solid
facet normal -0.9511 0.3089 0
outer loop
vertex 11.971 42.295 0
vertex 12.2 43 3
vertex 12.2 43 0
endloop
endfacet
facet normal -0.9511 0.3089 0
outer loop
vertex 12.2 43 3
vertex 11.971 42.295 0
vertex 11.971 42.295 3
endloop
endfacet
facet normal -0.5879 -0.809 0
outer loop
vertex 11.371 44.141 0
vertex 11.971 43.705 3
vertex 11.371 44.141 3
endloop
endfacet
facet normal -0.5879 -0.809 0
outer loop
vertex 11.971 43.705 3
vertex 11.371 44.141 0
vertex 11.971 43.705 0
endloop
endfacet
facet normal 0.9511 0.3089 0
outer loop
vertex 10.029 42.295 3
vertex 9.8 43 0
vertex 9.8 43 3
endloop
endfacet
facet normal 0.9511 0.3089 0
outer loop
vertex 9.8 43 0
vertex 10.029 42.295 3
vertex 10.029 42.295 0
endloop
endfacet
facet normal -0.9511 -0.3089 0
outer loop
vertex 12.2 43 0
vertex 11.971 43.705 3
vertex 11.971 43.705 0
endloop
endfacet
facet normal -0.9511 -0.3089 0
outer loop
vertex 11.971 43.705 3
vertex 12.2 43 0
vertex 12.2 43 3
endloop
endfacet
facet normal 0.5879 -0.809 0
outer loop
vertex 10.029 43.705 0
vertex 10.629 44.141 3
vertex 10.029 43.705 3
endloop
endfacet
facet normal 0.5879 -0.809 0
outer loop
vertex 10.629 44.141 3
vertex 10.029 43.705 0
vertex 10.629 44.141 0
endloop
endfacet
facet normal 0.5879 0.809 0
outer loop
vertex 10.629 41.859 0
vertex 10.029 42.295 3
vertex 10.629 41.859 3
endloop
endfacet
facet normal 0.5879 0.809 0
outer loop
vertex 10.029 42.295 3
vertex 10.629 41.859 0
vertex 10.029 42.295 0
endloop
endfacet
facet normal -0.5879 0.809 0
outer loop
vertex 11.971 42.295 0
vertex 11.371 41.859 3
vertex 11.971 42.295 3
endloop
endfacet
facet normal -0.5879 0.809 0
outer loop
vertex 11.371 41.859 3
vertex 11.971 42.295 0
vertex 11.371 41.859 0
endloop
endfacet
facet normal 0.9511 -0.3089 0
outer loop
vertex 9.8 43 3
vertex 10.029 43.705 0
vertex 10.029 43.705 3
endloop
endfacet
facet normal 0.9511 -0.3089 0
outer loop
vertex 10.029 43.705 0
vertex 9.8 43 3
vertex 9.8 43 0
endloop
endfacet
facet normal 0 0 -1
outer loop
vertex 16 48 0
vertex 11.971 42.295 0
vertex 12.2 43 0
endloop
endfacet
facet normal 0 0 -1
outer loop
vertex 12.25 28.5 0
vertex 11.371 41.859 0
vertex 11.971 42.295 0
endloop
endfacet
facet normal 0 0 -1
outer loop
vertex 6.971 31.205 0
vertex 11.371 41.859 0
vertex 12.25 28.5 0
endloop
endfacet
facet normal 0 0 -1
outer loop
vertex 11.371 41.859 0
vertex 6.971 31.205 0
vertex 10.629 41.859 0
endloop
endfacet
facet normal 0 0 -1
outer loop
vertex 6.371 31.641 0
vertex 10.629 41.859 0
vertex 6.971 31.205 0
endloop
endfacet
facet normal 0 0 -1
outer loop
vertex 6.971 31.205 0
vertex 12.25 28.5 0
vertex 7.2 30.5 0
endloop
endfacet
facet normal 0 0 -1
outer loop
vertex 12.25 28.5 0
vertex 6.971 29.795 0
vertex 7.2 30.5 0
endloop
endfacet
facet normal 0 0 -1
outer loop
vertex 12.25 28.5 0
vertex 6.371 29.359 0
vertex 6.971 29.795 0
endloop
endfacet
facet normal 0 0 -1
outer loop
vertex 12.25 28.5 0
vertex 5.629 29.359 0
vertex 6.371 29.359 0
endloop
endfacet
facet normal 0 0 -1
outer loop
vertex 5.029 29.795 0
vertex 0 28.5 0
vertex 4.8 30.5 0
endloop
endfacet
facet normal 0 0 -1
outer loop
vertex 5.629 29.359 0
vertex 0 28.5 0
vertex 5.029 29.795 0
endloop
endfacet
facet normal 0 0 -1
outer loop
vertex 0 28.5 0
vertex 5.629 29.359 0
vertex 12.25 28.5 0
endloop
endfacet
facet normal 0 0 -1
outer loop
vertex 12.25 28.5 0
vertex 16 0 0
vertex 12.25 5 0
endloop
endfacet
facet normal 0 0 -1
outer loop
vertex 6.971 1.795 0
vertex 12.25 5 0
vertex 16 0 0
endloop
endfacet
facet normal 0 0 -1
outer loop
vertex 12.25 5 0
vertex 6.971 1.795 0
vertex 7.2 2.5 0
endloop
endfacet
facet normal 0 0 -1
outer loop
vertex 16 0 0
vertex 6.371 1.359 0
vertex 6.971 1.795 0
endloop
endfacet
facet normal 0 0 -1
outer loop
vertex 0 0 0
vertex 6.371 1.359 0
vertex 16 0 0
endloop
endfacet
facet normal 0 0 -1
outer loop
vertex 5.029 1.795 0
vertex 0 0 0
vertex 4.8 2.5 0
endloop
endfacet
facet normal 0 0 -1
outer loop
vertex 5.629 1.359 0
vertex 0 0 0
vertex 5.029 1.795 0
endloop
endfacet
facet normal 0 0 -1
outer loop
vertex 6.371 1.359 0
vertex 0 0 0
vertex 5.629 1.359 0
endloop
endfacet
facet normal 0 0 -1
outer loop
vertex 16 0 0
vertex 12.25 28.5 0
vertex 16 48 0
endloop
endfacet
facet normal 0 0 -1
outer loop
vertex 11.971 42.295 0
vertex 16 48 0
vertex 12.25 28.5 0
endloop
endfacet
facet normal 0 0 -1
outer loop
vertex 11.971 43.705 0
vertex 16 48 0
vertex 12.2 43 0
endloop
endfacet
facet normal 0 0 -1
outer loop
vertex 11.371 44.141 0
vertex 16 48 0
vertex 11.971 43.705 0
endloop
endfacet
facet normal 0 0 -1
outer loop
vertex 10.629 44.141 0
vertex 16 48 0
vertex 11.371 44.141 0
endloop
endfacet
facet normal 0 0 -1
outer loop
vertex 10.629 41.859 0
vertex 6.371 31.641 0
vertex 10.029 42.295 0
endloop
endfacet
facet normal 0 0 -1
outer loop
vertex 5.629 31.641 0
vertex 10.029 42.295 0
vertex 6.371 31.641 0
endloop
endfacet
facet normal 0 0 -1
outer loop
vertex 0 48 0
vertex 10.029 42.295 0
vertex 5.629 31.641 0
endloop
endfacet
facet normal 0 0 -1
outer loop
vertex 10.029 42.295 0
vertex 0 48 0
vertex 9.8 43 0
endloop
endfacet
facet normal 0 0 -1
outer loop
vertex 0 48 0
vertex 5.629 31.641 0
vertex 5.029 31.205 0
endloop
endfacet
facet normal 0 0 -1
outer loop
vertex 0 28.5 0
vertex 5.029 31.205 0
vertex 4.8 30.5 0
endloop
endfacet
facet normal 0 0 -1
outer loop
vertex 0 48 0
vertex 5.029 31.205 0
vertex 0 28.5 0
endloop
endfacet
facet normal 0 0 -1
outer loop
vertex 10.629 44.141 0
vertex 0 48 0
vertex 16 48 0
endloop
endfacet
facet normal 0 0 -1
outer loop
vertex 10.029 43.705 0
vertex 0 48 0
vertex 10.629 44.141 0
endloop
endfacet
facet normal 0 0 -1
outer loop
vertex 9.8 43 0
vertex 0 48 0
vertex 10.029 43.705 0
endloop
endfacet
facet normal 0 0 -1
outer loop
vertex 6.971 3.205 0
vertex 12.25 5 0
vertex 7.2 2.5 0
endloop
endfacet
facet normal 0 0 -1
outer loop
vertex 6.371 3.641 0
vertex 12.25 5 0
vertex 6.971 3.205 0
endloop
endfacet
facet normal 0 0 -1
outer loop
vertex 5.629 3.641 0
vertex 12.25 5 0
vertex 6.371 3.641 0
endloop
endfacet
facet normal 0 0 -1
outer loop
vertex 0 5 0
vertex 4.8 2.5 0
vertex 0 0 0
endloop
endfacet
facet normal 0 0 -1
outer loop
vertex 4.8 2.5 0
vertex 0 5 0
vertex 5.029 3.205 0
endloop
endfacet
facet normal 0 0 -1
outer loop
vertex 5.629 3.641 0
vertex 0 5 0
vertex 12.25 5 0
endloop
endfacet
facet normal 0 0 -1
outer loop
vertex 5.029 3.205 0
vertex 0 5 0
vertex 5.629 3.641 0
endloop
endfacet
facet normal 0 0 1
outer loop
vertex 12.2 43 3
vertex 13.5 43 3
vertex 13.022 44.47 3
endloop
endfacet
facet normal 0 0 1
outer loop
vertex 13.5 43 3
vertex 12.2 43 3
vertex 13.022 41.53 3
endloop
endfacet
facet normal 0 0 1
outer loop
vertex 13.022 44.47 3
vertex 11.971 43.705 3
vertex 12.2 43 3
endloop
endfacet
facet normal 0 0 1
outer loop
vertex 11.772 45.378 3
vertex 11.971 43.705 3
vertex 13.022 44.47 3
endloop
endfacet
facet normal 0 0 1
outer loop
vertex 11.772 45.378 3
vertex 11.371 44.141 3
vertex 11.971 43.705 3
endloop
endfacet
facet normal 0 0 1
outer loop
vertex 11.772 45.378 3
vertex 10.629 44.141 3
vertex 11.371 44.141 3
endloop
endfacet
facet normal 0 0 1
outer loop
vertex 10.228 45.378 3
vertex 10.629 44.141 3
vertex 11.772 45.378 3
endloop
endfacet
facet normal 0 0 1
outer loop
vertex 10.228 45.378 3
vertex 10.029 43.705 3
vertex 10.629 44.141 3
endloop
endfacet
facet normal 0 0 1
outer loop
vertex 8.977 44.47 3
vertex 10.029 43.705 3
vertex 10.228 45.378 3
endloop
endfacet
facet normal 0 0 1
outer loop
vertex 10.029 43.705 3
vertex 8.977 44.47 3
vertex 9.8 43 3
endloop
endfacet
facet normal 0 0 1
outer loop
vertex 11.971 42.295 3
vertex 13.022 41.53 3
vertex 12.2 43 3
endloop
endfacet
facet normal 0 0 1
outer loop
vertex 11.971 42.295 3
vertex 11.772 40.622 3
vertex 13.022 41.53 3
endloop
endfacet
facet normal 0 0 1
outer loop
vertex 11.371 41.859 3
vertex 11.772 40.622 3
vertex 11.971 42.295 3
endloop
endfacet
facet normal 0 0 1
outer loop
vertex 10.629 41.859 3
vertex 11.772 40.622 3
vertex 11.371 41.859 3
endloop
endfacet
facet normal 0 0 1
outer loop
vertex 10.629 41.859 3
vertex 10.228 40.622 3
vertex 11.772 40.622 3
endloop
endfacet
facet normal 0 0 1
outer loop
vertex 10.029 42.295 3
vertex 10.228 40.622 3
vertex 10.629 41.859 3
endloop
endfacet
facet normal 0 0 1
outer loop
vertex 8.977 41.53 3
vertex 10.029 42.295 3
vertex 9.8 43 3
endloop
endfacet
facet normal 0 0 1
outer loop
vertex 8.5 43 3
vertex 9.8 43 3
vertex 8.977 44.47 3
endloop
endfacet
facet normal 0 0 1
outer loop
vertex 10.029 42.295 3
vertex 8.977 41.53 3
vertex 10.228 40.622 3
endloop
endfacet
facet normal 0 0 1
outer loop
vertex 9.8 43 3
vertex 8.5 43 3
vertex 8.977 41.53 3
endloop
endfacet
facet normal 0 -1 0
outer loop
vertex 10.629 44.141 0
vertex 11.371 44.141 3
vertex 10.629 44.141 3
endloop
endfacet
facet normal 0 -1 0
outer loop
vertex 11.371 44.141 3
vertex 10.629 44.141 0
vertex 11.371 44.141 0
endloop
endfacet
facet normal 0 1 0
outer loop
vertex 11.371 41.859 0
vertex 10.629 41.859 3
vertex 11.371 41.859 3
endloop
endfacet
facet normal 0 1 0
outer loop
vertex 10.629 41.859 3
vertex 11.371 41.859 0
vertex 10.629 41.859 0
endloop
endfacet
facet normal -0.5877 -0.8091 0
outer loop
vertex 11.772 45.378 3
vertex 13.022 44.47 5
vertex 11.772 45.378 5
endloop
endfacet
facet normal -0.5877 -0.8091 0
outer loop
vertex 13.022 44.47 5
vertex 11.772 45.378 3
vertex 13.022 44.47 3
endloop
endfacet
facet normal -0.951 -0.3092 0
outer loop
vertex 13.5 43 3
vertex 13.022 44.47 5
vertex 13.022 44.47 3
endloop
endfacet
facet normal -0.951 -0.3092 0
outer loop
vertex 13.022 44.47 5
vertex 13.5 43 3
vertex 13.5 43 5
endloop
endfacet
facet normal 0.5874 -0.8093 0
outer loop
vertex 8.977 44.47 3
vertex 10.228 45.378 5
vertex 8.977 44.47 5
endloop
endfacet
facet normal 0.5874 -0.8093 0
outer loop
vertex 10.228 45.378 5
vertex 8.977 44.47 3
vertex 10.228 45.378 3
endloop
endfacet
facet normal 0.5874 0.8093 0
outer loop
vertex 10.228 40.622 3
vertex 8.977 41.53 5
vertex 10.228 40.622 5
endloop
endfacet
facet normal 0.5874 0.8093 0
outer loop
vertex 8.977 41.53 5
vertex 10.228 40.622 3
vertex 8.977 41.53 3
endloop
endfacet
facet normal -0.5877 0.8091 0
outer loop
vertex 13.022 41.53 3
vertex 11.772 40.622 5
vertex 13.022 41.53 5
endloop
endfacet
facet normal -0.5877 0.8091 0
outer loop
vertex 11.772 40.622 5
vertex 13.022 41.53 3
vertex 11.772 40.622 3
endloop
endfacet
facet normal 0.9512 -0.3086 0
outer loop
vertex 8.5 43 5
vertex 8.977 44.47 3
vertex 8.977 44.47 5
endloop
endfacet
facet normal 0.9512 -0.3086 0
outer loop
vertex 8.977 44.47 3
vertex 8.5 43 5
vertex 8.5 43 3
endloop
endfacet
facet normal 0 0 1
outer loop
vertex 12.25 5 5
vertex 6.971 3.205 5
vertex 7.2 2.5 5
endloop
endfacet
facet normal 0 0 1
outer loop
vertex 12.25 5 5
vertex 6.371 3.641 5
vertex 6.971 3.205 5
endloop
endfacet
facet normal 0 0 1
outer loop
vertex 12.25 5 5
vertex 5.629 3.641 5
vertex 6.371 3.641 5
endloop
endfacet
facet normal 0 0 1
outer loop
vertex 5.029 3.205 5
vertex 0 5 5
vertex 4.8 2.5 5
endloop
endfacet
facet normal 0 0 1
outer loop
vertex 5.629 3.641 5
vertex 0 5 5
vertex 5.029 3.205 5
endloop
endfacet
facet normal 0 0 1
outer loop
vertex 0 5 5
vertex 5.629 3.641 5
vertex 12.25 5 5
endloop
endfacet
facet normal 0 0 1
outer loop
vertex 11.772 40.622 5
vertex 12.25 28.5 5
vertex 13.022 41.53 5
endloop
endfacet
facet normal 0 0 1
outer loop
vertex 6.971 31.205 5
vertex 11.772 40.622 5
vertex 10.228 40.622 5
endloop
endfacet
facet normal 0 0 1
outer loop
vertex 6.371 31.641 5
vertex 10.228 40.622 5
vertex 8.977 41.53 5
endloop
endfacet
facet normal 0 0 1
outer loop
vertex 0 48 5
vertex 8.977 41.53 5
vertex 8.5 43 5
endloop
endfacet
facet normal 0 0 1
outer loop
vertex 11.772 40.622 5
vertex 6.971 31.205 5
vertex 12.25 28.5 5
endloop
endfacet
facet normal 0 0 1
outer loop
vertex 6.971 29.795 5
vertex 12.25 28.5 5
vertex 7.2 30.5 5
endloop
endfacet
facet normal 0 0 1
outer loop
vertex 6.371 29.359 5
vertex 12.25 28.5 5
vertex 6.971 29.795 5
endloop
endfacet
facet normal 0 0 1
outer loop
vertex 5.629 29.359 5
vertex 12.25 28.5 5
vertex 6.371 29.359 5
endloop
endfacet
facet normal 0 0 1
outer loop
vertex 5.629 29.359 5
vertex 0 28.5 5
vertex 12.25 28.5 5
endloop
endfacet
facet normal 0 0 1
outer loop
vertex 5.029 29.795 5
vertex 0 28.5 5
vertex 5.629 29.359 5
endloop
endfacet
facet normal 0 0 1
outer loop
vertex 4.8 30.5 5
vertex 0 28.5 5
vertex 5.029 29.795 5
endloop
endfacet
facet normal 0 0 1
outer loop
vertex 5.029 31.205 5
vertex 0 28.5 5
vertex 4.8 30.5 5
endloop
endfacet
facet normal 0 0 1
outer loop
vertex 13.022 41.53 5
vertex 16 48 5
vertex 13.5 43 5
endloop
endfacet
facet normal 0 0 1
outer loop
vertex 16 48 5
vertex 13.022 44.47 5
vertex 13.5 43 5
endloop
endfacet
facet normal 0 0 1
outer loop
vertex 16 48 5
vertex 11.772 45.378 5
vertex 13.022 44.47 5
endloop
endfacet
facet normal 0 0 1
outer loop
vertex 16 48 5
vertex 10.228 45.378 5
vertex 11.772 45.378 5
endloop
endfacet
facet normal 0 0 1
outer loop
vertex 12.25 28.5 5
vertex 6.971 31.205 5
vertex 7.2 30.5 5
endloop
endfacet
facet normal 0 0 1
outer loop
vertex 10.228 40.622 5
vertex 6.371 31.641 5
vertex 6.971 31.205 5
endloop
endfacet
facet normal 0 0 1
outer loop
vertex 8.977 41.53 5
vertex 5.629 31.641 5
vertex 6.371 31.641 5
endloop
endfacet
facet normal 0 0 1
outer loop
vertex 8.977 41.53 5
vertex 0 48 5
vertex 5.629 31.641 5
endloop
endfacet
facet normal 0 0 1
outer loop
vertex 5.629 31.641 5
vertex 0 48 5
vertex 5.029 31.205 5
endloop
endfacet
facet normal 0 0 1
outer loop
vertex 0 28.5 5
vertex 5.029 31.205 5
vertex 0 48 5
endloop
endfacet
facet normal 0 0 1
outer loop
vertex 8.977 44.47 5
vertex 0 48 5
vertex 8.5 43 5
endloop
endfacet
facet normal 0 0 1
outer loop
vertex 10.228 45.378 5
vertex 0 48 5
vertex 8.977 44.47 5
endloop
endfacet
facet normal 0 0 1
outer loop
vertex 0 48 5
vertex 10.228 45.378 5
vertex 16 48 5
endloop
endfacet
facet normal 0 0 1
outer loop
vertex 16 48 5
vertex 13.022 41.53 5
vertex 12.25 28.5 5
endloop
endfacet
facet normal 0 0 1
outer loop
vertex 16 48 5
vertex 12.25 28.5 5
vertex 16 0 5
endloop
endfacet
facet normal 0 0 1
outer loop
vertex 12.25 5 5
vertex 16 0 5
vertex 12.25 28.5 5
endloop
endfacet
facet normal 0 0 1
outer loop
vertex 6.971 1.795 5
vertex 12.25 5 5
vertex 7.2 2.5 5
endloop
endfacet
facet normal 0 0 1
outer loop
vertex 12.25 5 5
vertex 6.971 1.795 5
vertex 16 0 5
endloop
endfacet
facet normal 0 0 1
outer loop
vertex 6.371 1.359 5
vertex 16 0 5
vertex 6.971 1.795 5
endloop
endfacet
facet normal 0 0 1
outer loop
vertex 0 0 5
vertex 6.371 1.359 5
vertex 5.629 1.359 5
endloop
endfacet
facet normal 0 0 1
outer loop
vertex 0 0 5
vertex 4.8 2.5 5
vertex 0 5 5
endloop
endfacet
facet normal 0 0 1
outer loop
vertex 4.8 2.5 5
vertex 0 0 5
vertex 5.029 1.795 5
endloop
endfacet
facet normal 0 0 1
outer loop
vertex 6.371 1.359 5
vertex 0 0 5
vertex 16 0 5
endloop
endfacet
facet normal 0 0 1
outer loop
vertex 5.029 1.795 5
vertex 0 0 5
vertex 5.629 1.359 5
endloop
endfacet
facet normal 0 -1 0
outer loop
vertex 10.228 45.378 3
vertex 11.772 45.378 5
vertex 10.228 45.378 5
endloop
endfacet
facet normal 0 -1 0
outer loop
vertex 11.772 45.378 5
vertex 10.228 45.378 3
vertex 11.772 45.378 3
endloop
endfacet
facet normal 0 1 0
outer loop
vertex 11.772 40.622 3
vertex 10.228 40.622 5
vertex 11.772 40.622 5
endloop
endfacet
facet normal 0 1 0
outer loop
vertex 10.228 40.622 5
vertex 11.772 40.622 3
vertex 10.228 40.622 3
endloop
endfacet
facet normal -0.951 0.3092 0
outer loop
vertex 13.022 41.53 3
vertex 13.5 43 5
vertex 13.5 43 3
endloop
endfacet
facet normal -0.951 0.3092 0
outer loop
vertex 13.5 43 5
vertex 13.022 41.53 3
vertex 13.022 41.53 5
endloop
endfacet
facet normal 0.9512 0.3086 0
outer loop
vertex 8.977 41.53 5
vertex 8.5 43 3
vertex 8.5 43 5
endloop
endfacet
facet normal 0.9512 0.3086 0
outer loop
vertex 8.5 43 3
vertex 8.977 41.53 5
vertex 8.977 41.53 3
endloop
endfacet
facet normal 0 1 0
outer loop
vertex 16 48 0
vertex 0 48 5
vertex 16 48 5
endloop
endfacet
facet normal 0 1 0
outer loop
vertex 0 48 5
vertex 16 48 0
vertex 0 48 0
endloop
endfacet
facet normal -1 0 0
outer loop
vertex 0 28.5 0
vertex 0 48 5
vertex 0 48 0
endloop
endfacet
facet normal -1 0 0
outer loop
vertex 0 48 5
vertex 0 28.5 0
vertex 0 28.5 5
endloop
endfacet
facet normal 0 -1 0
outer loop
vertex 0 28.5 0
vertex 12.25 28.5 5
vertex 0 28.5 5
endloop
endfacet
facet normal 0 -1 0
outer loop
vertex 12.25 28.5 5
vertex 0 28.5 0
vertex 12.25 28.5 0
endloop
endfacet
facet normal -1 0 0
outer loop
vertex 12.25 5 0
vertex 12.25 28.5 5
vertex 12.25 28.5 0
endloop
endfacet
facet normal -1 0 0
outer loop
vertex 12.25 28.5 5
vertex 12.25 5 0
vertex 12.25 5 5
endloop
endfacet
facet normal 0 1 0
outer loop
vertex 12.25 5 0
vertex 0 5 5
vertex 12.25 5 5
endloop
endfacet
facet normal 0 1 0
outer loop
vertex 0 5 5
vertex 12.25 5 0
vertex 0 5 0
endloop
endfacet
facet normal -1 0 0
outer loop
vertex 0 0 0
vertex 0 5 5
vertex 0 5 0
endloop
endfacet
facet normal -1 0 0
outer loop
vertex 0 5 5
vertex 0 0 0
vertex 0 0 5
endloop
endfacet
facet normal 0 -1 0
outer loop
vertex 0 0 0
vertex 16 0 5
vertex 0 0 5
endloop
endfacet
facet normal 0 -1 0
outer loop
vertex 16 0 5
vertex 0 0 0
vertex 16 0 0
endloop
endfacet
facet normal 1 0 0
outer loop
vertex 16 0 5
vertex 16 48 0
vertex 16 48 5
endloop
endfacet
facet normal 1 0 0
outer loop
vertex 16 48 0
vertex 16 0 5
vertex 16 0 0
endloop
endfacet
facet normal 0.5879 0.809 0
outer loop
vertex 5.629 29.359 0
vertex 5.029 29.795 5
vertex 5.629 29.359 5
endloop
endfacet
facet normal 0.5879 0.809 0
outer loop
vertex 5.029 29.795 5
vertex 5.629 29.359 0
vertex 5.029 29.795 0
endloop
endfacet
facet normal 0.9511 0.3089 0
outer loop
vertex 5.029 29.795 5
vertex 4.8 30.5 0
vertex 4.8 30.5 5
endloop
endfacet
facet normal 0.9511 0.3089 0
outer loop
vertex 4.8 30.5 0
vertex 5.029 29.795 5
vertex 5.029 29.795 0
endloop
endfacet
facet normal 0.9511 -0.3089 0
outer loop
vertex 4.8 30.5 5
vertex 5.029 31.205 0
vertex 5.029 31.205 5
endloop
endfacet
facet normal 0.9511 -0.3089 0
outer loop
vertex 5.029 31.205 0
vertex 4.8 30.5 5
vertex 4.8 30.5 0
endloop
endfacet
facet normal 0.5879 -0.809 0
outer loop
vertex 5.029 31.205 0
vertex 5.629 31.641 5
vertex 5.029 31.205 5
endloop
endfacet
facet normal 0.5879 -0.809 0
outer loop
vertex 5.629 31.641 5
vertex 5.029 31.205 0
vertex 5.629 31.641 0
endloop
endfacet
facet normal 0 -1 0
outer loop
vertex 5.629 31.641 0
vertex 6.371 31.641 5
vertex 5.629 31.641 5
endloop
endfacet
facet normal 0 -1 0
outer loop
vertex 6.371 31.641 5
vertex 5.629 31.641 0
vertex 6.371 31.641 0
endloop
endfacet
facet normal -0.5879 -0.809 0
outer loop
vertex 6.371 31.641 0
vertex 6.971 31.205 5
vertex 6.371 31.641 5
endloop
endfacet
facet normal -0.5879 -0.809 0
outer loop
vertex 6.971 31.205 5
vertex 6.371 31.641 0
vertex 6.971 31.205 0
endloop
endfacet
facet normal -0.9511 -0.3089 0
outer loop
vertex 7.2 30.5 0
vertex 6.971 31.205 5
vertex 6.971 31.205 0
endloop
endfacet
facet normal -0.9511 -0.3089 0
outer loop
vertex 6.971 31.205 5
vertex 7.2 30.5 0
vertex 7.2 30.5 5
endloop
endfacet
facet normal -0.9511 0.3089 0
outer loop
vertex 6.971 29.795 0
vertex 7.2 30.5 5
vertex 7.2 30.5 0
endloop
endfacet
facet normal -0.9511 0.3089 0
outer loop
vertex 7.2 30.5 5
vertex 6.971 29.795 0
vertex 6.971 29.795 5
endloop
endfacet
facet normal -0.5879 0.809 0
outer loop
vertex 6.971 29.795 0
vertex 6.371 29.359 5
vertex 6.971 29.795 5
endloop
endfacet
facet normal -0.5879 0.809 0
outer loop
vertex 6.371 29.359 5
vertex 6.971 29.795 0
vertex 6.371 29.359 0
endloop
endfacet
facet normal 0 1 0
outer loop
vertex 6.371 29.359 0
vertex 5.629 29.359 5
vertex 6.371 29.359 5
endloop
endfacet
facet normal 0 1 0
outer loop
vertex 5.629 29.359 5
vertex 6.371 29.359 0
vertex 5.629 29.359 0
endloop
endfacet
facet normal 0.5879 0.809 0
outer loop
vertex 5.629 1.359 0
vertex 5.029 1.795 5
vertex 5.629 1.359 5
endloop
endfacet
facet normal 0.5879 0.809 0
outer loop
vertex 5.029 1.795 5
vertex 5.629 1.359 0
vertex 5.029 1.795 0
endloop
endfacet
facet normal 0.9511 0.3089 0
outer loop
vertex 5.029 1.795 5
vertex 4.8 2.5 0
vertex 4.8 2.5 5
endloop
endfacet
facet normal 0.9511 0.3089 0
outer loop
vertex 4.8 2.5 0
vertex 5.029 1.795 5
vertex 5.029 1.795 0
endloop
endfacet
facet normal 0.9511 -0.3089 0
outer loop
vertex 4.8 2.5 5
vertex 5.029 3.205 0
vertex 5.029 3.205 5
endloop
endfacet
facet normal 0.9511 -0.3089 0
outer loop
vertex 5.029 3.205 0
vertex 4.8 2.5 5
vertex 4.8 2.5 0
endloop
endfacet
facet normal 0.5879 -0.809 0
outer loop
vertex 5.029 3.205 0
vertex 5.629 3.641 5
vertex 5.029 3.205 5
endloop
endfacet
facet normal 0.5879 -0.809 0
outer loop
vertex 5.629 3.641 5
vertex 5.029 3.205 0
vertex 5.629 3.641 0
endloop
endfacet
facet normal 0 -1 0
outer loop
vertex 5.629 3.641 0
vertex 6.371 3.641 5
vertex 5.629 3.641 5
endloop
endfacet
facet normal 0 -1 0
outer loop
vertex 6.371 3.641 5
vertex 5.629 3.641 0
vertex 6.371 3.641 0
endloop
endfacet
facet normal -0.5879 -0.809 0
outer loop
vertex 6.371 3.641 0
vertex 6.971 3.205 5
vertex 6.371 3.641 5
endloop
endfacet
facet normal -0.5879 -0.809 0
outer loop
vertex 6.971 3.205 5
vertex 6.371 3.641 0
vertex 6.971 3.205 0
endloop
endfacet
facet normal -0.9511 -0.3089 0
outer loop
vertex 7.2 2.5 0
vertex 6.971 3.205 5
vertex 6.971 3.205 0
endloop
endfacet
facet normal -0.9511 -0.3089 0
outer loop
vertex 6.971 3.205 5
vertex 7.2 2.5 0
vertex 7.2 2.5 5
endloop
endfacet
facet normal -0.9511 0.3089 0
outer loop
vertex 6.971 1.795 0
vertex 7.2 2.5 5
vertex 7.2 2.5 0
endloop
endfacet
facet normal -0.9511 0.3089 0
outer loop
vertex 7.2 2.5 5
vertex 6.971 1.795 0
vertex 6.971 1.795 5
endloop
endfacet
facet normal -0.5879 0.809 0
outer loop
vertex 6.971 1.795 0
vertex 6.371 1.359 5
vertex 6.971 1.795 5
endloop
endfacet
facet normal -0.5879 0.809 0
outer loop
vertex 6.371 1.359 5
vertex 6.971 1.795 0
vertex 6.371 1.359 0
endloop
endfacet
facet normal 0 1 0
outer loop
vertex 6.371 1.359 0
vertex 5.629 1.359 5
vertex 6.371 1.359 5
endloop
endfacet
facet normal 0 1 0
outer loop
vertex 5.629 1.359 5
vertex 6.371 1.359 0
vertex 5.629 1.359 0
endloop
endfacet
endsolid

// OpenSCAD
//////////////////////////
// MOTOR - HOLDER

module screws() {

    radius = 1.2;
    distance = 28;

    translate([0,0])
        circle(r=radius, $fn=10);
    translate([0,distance])
        circle(r=radius, $fn=10);
}

module body() {

    width = 12.5;
    length = 23.5;

    translate([-width/2, 2.5])
        square([width, length]);
}

module motor() {
    screws();
    body();
}

//////////////////////////
// LEG

module leg() {
    thickness = 5;
    length = 48;
    width = 16;

    linear_extrude(height=thickness)
        difference() {
            square([width, length]);
            translate([6, 2.5])
                motor();
        }
}

//////////////////////////
// SPIN SHAFT

module spin_shaft() {
    distance = 43;
    small_radius = 1.2;
    large_radius = 2.5;
    small_depth = 3;
    large_depth = 2;

    translate([11,distance,0])
        linear_extrude(height=small_depth)
            circle(r=small_radius, $fn=10);
    translate([11,distance,small_depth])
        linear_extrude(height=large_depth)
            circle(r=large_radius, $fn=10);
}

//////////////////////////
// RENDER

difference() {
    leg();
    spin_shaft();
}
